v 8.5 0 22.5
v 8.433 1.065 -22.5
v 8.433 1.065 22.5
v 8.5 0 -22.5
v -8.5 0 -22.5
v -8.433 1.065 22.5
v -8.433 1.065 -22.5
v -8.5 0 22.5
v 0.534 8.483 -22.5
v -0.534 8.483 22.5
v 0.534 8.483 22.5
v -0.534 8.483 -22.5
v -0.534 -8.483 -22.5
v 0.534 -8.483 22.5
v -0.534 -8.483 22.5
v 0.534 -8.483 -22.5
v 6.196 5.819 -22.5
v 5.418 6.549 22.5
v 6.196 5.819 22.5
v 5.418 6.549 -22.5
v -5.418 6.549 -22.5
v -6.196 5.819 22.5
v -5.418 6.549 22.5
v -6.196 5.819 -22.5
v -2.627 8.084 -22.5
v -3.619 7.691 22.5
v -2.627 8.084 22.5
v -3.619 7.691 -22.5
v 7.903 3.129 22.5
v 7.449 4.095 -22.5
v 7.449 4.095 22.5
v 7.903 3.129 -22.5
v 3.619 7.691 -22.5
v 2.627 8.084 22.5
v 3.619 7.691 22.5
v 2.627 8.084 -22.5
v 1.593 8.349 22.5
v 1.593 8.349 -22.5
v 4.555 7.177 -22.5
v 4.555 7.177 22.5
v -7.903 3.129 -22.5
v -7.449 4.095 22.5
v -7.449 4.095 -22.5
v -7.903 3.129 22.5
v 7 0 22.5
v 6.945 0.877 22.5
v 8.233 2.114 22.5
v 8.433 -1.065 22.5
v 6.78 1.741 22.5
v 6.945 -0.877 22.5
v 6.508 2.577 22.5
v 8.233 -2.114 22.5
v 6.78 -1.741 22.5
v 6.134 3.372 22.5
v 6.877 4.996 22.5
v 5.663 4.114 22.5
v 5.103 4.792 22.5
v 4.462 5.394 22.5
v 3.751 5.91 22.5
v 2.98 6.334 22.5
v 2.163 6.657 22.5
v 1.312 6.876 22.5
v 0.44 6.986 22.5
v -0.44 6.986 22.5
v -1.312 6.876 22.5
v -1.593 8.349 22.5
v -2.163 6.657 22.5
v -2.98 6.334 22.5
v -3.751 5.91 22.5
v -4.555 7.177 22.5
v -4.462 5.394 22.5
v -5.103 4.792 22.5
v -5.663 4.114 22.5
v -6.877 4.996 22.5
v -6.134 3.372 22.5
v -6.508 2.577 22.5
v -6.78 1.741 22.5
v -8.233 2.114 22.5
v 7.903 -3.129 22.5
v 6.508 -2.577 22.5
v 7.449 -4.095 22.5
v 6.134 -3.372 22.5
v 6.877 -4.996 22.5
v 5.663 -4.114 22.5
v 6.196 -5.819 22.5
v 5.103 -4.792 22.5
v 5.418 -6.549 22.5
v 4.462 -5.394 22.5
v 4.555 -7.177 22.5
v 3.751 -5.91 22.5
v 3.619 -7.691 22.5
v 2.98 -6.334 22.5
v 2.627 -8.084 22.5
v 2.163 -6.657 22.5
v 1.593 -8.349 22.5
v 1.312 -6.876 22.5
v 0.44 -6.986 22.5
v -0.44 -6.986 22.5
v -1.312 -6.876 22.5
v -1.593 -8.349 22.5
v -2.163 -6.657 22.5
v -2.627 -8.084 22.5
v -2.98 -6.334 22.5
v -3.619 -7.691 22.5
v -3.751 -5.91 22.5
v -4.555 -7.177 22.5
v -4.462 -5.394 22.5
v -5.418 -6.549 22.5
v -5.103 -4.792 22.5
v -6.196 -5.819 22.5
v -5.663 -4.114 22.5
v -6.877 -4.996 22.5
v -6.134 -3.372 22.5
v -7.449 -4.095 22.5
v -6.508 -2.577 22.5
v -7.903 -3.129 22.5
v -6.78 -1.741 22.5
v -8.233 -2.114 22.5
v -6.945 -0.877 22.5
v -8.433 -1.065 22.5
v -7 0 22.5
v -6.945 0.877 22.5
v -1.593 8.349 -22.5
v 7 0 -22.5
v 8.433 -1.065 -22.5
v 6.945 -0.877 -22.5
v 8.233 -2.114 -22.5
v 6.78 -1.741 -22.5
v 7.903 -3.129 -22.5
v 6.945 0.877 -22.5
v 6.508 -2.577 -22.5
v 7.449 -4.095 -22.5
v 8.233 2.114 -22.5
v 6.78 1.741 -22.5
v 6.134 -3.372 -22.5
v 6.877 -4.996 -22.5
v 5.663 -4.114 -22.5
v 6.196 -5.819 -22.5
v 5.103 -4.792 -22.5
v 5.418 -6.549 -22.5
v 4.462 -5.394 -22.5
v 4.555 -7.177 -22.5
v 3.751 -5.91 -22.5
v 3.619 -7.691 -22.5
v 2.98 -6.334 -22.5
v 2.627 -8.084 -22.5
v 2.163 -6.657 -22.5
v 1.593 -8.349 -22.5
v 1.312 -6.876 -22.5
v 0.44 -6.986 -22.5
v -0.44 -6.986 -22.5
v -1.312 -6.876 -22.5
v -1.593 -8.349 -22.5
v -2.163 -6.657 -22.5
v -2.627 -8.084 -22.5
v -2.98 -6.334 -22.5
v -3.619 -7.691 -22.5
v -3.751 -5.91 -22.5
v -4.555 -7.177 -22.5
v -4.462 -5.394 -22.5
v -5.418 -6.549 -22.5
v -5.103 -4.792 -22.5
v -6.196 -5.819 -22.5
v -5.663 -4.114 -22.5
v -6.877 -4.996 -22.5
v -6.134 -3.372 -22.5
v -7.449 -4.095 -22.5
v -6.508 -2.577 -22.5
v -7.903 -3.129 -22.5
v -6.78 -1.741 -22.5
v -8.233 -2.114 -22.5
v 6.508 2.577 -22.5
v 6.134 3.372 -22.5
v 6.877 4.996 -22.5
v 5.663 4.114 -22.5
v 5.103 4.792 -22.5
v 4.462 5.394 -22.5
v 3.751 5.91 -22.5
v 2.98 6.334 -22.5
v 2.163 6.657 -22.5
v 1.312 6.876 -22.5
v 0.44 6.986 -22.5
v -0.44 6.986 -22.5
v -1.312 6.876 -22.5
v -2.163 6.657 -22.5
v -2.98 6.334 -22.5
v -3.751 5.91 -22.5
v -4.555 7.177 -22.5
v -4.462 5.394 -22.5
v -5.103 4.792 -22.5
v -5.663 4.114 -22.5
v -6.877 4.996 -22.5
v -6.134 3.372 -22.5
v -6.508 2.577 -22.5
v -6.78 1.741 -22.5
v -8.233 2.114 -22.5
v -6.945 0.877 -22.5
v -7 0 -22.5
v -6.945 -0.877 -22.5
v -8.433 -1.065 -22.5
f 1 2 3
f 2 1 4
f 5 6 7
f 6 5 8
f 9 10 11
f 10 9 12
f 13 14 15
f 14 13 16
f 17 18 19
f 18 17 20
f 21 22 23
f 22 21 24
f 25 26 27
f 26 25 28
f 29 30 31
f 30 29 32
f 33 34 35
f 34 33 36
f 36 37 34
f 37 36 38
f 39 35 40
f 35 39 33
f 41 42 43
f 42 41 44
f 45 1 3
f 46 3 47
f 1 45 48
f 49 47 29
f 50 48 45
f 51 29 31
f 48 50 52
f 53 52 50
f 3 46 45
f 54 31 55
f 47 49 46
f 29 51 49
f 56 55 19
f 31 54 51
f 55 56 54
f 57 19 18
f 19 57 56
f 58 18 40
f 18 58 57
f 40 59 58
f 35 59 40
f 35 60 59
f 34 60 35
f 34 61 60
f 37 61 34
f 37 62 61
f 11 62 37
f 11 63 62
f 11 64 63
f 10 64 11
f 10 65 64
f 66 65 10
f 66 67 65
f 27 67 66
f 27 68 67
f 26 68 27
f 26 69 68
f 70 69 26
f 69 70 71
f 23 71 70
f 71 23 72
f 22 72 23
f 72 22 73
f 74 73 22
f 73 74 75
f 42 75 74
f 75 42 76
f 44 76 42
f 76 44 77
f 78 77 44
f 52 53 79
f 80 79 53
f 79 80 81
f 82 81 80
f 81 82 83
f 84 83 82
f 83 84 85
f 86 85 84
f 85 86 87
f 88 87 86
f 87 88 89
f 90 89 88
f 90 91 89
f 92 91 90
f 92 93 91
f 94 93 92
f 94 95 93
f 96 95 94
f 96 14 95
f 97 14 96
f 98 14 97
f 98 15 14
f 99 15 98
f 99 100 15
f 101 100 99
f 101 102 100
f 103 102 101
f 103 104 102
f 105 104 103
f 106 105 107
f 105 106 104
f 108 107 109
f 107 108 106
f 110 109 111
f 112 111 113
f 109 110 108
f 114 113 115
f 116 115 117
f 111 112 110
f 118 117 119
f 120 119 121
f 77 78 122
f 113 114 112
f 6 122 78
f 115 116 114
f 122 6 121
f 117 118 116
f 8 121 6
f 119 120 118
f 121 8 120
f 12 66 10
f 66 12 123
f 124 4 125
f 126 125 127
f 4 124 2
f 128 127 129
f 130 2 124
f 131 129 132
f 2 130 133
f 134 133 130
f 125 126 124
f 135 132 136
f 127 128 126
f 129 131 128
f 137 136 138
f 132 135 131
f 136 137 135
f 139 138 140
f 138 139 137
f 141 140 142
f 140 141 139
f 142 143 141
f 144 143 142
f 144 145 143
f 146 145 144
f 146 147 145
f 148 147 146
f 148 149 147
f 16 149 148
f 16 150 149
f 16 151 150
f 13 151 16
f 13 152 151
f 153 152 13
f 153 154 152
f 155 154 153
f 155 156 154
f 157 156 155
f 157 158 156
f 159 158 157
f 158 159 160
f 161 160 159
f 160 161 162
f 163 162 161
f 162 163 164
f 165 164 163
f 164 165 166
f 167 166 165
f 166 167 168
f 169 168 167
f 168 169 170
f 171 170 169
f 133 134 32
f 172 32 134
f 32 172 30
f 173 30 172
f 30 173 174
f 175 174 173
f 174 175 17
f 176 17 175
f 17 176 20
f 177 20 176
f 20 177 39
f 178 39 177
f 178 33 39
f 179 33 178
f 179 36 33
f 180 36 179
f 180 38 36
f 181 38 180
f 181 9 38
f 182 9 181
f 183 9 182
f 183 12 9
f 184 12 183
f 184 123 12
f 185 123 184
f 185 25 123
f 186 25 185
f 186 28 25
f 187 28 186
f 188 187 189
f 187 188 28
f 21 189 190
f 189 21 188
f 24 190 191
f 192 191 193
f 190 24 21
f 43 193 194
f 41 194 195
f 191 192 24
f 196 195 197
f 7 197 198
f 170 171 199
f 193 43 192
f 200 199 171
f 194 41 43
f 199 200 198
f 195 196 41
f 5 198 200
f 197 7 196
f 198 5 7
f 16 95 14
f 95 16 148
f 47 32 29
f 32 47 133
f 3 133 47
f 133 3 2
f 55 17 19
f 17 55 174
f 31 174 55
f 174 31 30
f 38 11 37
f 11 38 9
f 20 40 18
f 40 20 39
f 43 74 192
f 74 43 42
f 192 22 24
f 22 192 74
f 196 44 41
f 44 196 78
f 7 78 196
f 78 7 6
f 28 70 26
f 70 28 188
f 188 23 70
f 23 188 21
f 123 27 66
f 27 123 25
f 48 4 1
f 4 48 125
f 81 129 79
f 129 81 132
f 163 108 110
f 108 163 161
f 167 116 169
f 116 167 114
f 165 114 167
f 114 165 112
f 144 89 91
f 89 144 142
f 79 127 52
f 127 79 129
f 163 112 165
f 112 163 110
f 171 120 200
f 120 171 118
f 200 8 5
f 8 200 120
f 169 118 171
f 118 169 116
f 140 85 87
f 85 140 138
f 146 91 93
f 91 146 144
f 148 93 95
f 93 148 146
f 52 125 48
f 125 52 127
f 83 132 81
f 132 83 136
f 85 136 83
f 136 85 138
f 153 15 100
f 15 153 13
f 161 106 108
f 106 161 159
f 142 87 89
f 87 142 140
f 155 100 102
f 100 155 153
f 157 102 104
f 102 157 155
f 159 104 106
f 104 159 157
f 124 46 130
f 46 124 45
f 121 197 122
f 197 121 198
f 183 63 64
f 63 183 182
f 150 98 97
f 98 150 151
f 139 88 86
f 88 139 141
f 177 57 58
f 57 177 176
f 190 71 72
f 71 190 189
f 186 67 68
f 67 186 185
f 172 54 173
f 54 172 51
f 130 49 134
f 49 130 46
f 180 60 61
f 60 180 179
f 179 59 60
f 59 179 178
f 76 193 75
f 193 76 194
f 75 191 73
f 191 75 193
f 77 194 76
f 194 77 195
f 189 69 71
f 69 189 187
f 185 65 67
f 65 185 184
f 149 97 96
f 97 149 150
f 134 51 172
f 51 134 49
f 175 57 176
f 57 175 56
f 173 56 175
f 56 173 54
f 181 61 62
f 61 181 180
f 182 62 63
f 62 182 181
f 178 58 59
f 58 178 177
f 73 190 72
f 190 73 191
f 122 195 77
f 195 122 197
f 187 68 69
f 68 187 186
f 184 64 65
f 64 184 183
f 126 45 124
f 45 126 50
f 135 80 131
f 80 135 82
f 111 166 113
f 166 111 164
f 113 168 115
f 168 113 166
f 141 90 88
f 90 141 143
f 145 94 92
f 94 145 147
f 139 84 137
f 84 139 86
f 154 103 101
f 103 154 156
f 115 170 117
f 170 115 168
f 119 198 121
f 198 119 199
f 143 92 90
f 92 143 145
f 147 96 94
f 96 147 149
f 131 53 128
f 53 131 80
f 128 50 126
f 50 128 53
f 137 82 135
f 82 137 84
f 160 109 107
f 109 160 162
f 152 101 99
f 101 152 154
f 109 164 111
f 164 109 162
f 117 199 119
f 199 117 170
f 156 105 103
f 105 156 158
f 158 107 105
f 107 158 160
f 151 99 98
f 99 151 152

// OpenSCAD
$fn = 50;


difference() {
	union() {
		translate(v = [0, 0, -22.5000000000]) {
			cylinder(h = 45, r = 8.5000000000);
		}
	}
	union() {
		translate(v = [0, 0, -100.0000000000]) {
			cylinder(h = 200, r = 7);
		}
	}
}
